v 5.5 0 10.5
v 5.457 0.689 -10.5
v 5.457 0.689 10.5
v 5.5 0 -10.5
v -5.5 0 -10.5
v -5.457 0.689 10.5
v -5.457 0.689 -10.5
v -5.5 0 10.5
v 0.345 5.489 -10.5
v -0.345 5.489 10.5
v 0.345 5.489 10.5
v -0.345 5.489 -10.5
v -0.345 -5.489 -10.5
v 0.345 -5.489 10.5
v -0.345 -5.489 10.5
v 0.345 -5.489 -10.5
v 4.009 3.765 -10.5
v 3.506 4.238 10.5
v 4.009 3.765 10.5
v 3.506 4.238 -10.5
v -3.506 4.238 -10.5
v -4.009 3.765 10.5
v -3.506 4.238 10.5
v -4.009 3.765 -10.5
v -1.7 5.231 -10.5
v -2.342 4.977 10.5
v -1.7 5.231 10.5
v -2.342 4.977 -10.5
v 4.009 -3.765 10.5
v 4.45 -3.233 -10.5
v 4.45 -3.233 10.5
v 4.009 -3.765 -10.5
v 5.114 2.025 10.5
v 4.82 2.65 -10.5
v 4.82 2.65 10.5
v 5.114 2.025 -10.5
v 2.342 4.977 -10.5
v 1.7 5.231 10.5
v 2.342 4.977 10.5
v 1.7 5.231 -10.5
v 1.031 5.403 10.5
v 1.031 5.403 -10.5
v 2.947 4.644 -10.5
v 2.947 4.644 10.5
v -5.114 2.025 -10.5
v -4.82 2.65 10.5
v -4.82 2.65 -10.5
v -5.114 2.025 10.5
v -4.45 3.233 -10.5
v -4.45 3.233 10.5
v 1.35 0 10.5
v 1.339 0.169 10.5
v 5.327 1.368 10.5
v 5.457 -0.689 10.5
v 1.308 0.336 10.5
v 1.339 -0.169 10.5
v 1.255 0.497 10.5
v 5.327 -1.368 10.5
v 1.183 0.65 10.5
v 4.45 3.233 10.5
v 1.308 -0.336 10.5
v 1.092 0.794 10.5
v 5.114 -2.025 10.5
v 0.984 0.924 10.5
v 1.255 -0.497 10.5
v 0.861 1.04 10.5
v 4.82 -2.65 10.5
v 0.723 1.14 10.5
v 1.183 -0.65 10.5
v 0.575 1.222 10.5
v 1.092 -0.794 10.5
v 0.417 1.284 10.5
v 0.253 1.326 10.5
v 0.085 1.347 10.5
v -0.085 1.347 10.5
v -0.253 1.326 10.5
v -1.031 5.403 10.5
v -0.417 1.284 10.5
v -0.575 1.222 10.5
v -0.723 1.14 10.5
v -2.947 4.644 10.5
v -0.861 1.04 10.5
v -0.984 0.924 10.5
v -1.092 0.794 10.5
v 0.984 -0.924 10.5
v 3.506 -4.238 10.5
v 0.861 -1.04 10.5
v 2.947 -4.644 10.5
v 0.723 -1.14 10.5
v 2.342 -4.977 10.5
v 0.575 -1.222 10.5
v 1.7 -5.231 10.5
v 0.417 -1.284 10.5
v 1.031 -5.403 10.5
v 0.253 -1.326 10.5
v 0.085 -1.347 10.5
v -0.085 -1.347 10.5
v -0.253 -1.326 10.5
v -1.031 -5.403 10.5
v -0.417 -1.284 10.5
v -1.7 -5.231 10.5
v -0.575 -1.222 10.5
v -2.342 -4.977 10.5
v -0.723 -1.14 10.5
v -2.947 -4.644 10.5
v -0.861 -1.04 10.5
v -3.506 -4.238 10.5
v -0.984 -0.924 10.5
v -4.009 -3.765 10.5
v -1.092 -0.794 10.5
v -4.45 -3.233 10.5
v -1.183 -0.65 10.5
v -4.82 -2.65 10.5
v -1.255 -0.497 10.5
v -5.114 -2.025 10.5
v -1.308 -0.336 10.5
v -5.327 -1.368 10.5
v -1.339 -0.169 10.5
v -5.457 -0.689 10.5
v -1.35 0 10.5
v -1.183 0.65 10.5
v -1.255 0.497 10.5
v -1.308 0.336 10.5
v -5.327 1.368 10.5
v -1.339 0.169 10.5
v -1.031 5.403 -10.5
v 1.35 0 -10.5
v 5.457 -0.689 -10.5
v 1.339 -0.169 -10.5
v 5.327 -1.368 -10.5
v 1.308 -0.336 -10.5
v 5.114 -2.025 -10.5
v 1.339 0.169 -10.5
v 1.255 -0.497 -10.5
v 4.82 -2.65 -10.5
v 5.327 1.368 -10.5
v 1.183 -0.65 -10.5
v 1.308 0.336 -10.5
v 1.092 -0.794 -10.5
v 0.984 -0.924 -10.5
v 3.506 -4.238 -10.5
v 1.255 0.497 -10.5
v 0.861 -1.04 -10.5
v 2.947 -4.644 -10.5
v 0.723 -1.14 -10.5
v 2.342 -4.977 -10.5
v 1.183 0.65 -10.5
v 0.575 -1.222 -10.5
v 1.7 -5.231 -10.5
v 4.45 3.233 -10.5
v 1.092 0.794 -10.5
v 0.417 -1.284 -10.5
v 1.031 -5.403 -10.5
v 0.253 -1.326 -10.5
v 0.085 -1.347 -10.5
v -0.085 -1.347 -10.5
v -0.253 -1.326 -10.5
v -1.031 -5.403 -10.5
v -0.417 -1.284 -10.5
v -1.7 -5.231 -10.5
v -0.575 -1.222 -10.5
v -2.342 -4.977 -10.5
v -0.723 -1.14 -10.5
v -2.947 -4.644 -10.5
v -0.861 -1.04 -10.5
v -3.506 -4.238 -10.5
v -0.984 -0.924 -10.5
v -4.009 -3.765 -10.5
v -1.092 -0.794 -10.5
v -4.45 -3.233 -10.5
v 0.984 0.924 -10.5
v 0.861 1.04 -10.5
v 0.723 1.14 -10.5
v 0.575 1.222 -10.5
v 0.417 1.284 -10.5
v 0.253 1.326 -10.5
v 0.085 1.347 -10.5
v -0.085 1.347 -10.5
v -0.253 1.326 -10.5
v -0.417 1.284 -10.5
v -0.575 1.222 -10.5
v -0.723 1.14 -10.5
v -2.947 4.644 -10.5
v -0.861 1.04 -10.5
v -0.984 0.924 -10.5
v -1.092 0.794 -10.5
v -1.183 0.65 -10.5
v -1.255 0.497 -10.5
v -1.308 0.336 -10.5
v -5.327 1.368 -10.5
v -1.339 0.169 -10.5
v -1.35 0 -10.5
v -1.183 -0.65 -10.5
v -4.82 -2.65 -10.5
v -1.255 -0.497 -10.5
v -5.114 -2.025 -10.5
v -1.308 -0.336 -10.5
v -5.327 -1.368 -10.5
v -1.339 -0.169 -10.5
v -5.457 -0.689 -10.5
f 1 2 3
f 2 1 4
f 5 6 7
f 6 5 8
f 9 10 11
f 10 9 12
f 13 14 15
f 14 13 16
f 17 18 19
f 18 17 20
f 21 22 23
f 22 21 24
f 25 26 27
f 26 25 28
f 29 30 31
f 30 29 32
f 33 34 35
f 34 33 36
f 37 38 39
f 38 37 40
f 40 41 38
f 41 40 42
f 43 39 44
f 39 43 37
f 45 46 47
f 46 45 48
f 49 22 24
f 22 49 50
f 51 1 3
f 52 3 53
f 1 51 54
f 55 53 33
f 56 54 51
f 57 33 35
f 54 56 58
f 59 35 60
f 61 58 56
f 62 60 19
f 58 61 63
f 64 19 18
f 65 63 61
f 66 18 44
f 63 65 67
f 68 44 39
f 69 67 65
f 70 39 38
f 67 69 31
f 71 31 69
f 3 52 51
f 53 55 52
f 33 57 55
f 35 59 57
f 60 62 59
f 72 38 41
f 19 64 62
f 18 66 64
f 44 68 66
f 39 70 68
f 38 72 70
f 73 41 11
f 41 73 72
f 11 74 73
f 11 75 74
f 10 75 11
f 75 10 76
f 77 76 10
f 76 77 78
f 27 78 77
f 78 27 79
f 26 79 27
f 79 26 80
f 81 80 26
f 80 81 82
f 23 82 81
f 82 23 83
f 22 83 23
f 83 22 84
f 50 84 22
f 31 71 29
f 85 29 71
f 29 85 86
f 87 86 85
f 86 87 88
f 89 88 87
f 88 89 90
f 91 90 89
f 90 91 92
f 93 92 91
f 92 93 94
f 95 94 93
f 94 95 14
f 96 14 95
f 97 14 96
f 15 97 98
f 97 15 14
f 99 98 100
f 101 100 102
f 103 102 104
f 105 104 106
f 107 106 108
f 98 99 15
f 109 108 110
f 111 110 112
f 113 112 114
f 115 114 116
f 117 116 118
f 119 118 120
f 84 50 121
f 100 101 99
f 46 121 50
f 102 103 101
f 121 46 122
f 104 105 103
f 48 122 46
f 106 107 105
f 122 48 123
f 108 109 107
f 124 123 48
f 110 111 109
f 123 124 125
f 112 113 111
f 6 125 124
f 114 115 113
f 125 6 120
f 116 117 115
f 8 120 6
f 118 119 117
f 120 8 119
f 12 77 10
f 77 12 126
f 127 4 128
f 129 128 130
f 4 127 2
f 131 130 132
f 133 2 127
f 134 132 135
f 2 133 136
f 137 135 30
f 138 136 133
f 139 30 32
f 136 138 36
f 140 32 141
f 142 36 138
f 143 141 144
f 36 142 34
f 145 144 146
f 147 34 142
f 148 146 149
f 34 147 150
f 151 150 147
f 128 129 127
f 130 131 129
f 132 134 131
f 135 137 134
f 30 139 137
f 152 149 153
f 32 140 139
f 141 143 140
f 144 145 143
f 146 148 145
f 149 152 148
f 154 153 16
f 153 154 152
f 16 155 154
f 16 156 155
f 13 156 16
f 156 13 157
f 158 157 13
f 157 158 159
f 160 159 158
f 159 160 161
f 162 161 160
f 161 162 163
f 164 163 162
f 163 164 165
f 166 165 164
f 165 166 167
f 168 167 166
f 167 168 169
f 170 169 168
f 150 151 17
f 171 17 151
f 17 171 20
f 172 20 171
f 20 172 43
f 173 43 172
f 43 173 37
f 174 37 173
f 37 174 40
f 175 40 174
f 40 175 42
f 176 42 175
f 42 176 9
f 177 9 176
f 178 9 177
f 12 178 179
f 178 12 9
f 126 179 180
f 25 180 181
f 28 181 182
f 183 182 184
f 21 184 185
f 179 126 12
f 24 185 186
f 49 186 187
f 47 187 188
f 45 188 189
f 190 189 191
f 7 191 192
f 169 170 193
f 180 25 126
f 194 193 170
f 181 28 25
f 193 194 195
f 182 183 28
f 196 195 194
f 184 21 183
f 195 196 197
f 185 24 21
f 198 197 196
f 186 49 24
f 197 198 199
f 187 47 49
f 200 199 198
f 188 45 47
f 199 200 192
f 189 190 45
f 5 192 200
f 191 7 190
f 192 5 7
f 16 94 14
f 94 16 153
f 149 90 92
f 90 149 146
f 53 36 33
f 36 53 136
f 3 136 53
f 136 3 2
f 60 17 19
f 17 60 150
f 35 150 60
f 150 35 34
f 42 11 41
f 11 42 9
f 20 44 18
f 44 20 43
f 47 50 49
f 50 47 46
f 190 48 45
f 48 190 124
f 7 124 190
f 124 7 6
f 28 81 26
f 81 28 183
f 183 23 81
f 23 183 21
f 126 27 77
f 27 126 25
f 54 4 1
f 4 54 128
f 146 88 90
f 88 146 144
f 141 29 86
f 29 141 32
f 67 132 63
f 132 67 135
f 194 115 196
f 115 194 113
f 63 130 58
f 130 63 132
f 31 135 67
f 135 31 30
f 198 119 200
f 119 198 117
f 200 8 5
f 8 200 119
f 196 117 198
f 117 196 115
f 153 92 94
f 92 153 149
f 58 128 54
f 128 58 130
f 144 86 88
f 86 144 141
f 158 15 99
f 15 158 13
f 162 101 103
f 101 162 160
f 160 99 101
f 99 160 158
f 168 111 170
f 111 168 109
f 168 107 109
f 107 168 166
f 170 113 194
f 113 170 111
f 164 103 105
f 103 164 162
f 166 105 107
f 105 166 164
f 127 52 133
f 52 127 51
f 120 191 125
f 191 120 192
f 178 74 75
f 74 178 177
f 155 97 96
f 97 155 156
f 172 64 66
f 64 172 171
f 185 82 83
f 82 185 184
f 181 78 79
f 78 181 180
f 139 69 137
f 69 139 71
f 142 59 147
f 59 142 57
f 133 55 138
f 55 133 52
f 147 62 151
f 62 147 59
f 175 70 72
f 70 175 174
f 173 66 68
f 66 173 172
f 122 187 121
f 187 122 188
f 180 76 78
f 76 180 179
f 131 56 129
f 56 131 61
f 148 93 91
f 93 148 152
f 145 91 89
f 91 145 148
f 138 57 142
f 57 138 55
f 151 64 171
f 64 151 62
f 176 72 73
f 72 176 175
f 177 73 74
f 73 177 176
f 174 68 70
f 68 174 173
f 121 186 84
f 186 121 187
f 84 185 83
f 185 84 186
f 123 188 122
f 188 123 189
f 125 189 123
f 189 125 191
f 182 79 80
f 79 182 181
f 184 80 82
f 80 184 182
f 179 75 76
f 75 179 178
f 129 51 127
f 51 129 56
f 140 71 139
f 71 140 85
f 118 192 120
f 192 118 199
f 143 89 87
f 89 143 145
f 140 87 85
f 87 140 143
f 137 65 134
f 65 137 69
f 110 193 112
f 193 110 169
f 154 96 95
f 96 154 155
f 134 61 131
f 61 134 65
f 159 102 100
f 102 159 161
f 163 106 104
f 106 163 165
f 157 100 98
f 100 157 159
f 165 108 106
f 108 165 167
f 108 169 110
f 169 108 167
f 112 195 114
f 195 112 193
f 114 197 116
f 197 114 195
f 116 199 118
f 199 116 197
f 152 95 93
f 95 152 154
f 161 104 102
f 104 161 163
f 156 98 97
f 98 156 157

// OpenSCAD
$fn = 50;


difference() {
	union() {
		translate(v = [0, 0, -10.5000000000]) {
			cylinder(h = 21, r = 5.5000000000);
		}
	}
	union() {
		translate(v = [0, 0, -100.0000000000]) {
			cylinder(h = 200, r = 1.3500000000);
		}
	}
}
